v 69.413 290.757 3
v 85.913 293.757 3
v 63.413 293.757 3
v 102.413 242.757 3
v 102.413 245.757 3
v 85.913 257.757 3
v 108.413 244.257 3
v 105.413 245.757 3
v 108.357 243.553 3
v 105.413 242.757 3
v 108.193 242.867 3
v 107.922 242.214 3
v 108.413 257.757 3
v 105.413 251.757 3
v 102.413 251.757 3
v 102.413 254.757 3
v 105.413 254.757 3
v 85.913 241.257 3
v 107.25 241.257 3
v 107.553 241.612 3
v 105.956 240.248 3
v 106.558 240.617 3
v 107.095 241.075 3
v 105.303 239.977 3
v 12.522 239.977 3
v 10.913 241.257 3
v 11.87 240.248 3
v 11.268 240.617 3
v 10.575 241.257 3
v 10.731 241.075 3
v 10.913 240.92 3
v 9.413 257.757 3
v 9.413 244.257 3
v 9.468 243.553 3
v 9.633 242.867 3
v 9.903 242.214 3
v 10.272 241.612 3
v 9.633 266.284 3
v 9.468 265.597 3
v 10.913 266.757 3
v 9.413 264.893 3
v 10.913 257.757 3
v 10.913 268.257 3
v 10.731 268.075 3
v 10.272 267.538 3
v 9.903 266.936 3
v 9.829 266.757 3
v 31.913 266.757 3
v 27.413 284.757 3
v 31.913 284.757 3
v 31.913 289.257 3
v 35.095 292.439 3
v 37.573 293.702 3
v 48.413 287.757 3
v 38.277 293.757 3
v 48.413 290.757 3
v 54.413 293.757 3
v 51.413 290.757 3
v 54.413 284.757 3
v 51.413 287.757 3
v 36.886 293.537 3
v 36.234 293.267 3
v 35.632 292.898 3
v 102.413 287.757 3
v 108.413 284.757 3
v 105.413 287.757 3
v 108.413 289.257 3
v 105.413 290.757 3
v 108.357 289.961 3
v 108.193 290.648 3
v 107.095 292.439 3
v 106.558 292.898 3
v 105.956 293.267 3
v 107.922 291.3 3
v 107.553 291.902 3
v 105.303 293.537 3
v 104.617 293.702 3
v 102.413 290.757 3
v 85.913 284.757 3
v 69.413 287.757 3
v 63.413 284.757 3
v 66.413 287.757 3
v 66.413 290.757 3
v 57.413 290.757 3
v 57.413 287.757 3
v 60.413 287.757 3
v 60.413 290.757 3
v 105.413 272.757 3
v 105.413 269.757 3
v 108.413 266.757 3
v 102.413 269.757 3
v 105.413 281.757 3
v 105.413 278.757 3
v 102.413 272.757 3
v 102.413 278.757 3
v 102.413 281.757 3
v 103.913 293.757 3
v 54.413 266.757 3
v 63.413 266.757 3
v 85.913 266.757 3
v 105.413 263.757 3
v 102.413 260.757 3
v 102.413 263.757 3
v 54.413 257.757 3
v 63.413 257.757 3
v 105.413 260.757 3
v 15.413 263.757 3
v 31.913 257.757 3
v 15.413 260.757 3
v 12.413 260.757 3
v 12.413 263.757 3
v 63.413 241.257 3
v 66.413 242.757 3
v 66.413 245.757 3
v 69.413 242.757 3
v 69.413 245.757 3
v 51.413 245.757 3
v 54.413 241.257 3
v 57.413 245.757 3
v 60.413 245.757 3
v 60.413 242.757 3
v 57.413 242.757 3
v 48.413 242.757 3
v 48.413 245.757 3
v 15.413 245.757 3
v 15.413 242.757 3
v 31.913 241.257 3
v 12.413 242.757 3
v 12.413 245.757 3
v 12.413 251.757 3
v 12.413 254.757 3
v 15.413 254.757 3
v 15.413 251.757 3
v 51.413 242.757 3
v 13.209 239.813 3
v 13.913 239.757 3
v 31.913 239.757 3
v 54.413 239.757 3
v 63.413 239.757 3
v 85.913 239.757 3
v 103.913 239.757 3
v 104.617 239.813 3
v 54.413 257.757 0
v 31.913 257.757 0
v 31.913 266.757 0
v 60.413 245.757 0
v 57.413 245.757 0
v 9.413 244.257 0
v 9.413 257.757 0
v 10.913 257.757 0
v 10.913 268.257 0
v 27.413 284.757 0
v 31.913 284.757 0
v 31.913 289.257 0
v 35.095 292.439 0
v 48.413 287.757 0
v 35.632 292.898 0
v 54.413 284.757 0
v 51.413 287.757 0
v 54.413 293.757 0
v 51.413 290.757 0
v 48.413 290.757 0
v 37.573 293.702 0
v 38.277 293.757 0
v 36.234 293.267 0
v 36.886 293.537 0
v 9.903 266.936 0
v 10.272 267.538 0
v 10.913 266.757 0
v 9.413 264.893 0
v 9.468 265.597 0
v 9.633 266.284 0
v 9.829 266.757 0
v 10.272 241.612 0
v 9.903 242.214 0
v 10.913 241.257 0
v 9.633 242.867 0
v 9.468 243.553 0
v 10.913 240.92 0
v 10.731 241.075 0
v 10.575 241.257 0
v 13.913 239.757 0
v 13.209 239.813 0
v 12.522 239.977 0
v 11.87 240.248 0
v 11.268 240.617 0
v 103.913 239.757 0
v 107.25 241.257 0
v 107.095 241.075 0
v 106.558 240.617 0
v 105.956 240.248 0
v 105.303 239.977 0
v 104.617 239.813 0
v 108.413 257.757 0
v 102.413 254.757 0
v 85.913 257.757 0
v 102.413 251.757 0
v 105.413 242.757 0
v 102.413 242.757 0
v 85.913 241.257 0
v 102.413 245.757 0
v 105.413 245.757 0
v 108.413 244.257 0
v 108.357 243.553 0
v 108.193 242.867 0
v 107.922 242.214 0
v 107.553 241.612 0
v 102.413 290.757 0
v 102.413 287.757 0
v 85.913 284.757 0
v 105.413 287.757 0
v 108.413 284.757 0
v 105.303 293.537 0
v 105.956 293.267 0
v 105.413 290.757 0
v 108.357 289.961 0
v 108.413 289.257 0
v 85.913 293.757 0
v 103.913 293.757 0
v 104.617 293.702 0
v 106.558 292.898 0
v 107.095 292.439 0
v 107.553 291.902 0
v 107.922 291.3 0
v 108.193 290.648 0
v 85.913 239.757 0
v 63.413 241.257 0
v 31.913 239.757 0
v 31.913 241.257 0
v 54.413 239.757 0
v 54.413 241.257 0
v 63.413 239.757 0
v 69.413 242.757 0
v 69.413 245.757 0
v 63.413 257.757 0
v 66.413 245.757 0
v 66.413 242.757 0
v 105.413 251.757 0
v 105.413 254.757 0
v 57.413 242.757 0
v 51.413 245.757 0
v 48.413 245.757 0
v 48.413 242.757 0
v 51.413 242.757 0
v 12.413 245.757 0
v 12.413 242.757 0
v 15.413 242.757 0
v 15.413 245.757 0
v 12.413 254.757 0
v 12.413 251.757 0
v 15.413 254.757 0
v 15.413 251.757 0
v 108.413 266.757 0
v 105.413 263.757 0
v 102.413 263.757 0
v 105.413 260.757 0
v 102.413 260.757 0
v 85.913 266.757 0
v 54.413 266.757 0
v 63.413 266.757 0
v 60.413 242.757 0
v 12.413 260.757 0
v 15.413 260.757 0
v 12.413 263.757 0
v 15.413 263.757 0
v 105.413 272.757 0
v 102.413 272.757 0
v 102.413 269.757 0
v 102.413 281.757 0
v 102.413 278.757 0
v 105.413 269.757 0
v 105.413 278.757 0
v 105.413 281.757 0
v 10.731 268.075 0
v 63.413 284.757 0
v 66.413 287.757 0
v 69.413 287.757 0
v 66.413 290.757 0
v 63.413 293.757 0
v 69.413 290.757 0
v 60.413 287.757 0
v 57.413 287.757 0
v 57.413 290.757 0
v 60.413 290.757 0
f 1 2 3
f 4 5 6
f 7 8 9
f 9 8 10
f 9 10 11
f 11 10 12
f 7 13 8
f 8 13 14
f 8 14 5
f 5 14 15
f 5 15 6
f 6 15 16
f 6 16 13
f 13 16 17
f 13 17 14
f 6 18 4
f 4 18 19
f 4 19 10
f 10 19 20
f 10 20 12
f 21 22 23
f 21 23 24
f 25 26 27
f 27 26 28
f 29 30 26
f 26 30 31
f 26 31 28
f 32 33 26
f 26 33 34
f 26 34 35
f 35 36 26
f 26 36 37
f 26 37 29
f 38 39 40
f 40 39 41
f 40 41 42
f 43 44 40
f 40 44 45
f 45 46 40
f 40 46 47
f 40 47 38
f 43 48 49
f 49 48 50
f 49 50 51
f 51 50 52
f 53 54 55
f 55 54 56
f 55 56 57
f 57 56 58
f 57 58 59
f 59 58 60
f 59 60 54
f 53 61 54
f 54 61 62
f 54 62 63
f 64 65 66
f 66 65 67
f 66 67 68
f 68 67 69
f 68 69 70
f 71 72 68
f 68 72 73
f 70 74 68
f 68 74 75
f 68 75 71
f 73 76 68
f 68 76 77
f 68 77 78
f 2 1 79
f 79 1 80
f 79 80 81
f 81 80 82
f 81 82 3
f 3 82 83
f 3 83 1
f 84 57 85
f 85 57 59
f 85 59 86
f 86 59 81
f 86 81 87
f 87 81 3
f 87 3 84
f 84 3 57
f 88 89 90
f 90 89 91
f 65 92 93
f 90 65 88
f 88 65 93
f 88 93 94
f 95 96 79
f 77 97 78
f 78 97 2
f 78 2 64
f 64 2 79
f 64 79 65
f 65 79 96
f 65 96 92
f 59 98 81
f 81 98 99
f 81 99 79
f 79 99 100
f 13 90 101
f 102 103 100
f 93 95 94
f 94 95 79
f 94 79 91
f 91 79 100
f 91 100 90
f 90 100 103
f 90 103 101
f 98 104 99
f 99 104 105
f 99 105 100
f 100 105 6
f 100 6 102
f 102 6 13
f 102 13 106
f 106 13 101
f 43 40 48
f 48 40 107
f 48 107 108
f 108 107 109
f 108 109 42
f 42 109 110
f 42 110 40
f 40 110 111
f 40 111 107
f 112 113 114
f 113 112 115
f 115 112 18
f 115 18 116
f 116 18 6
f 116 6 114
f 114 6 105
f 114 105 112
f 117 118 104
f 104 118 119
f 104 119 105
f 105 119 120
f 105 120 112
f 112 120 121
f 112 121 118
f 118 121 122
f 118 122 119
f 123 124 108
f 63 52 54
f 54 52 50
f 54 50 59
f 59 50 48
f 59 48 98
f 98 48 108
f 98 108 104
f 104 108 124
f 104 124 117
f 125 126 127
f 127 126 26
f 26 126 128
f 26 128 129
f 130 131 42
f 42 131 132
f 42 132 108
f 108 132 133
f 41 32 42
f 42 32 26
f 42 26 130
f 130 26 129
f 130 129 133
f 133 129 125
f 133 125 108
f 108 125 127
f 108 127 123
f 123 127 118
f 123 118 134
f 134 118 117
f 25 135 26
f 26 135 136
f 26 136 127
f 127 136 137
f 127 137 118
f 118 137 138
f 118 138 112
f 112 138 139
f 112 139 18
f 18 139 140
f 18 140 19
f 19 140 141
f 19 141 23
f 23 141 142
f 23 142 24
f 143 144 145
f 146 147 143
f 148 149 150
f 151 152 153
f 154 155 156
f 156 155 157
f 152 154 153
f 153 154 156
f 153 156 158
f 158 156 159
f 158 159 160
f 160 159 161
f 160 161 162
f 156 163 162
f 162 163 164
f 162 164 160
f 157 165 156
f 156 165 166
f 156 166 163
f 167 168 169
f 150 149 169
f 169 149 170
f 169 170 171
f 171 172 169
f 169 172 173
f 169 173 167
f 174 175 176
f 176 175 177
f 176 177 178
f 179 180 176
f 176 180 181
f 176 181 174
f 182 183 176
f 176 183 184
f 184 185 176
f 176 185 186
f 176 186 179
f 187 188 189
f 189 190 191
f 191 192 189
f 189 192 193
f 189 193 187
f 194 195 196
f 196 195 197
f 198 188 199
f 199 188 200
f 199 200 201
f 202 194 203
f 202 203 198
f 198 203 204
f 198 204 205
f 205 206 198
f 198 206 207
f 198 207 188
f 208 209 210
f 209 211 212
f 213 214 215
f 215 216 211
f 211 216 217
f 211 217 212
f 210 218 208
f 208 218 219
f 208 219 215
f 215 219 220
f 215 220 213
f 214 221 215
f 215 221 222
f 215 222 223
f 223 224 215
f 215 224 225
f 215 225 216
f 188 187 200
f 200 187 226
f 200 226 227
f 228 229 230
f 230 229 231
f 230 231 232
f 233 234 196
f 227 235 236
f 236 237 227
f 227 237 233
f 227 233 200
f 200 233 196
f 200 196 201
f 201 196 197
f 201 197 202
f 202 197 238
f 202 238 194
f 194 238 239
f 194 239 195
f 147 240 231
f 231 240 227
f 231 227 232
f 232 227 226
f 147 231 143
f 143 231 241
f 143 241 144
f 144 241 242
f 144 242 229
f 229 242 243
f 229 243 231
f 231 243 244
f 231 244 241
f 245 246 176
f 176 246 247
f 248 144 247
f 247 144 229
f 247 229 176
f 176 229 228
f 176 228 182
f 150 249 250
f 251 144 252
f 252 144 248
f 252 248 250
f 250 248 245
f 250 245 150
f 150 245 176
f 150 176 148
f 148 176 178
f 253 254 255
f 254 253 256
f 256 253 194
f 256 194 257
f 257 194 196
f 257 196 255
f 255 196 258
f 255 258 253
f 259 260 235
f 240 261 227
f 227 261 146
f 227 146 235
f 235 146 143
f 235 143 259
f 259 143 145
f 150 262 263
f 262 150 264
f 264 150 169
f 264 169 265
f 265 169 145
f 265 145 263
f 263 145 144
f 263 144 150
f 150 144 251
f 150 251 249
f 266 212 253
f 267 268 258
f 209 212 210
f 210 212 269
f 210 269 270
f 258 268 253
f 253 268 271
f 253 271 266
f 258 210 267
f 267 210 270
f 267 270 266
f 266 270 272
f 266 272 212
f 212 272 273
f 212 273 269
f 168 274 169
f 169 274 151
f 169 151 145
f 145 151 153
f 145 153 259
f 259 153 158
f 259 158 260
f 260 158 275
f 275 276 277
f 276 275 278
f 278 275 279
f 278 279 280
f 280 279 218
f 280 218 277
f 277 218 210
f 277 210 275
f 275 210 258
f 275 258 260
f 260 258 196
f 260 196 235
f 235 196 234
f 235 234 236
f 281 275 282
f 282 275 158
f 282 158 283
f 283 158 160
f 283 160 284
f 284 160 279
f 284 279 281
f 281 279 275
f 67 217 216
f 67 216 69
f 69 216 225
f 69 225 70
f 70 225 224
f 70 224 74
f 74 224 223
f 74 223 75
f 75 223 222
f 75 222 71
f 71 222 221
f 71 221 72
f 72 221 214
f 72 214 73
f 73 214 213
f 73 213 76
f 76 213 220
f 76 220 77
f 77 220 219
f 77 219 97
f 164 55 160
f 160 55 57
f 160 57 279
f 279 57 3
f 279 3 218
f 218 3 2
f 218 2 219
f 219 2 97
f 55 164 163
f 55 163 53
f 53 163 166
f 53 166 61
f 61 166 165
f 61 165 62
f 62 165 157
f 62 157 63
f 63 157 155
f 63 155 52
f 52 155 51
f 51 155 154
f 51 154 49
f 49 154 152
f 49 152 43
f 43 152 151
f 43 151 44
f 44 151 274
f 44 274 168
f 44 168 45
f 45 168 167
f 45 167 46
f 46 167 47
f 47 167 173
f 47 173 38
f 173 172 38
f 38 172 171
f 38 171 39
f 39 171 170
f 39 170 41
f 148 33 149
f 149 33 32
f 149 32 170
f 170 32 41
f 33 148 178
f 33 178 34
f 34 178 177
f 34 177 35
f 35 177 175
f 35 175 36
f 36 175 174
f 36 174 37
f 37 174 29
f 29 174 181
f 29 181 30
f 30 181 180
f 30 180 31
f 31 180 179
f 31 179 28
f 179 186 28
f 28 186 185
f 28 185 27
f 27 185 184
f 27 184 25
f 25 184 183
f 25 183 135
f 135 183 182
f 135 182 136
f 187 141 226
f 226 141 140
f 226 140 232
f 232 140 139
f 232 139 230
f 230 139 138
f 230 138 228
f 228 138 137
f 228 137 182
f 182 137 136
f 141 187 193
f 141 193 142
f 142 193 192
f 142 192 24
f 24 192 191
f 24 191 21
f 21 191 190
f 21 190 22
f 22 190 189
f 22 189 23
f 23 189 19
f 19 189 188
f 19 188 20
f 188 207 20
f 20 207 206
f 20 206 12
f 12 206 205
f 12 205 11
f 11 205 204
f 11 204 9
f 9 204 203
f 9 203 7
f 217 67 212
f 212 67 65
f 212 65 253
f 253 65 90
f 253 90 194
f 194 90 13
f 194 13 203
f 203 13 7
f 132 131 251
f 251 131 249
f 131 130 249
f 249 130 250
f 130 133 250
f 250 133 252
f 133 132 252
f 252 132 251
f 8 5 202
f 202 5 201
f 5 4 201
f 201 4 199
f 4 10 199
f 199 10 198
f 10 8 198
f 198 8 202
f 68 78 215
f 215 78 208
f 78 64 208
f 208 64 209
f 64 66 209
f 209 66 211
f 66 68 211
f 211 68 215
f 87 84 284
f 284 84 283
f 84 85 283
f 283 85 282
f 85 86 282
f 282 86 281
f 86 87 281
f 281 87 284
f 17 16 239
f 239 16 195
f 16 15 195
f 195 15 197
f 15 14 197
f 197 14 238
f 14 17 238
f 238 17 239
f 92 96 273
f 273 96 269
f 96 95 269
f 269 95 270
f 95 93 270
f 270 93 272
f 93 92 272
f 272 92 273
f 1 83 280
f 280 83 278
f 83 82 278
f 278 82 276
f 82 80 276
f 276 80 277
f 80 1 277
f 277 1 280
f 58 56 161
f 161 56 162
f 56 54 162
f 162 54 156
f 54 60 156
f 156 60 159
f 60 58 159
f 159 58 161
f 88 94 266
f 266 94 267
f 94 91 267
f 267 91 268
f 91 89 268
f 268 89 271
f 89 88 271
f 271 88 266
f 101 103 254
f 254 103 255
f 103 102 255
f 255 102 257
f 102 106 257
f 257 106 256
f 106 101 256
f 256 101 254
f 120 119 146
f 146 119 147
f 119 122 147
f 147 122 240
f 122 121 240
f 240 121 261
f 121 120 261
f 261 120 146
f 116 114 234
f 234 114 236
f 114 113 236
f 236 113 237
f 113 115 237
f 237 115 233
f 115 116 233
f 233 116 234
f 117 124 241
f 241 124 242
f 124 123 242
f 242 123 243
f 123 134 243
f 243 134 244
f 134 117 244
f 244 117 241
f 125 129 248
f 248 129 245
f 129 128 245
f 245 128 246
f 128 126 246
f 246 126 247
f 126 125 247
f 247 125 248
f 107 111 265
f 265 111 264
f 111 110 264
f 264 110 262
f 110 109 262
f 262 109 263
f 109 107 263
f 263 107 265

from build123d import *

# Parameters (mm, degrees)
MODEL_W                 = 3
MODEL_H                 = 3
SALIENTE_EXTRUIR1_DEPTH = 3


with BuildPart() as part:
    # Model → Saliente-Extruir1 (new body)
    with BuildSketch(Plane.XY):
        with BuildLine():
            Line((13.912774389, 239.757149551), (103.912774389, 239.757149551))
            ThreePointArc((103.912774389, 239.757149551), (107.094754904, 241.075169036), (108.412774389, 244.257149551))
            Line((108.412774389, 244.257149551), (108.412774389, 289.257149551))
            ThreePointArc((108.412774389, 289.257149551), (107.094754904, 292.439130067), (103.912774389, 293.757149551))
            Line((103.912774389, 293.757149551), (38.276735419, 293.757149551))
            ThreePointArc((38.276735419, 293.757149551), (36.554659974, 293.414607448), (35.094754904, 292.439130067))
            Line((35.094754904, 292.439130067), (10.730793873, 268.075169036))
            ThreePointArc((10.730793873, 268.075169036), (9.755316492, 266.615263966), (9.412774389, 264.893188521))
            Line((9.412774389, 264.893188521), (9.412774389, 244.257149551))
            ThreePointArc((9.412774389, 244.257149551), (10.730793873, 241.075169036), (13.912774389, 239.757149551))
        make_face()
        with Locations((13.912774389, 253.257149551)):
            Rectangle(MODEL_W, MODEL_H, mode=Mode.SUBTRACT)
        with Locations((103.912774389, 244.257149551)):
            Rectangle(MODEL_W, MODEL_H, mode=Mode.SUBTRACT)
        with Locations((103.912774389, 289.257149551)):
            Rectangle(MODEL_W, MODEL_H, mode=Mode.SUBTRACT)
        with Locations((58.912774389, 289.257149551)):
            Rectangle(MODEL_W, MODEL_H, mode=Mode.SUBTRACT)
        with Locations((103.912774389, 253.257149551)):
            Rectangle(MODEL_W, MODEL_H, mode=Mode.SUBTRACT)
        with Locations((103.912774389, 280.257149551)):
            Rectangle(MODEL_W, MODEL_H, mode=Mode.SUBTRACT)
        with Locations((67.912774389, 289.257149551)):
            Rectangle(MODEL_W, MODEL_H, mode=Mode.SUBTRACT)
        with Locations((49.912774389, 289.257149551)):
            Rectangle(MODEL_W, MODEL_H, mode=Mode.SUBTRACT)
        with Locations((103.912774389, 271.257149551)):
            Rectangle(MODEL_W, MODEL_H, mode=Mode.SUBTRACT)
        with Locations((103.912774389, 262.257149551)):
            Rectangle(MODEL_W, MODEL_H, mode=Mode.SUBTRACT)
        with Locations((58.912774389, 244.257149551)):
            Rectangle(MODEL_W, MODEL_H, mode=Mode.SUBTRACT)
        with Locations((67.912774389, 244.257149551)):
            Rectangle(MODEL_W, MODEL_H, mode=Mode.SUBTRACT)
        with Locations((49.912774389, 244.257149551)):
            Rectangle(MODEL_W, MODEL_H, mode=Mode.SUBTRACT)
        with Locations((13.912774389, 244.257149551)):
            Rectangle(MODEL_W, MODEL_H, mode=Mode.SUBTRACT)
        with Locations((13.912774389, 262.257149551)):
            Rectangle(MODEL_W, MODEL_H, mode=Mode.SUBTRACT)
    extrude(amount=SALIENTE_EXTRUIR1_DEPTH)


solid = part.part
